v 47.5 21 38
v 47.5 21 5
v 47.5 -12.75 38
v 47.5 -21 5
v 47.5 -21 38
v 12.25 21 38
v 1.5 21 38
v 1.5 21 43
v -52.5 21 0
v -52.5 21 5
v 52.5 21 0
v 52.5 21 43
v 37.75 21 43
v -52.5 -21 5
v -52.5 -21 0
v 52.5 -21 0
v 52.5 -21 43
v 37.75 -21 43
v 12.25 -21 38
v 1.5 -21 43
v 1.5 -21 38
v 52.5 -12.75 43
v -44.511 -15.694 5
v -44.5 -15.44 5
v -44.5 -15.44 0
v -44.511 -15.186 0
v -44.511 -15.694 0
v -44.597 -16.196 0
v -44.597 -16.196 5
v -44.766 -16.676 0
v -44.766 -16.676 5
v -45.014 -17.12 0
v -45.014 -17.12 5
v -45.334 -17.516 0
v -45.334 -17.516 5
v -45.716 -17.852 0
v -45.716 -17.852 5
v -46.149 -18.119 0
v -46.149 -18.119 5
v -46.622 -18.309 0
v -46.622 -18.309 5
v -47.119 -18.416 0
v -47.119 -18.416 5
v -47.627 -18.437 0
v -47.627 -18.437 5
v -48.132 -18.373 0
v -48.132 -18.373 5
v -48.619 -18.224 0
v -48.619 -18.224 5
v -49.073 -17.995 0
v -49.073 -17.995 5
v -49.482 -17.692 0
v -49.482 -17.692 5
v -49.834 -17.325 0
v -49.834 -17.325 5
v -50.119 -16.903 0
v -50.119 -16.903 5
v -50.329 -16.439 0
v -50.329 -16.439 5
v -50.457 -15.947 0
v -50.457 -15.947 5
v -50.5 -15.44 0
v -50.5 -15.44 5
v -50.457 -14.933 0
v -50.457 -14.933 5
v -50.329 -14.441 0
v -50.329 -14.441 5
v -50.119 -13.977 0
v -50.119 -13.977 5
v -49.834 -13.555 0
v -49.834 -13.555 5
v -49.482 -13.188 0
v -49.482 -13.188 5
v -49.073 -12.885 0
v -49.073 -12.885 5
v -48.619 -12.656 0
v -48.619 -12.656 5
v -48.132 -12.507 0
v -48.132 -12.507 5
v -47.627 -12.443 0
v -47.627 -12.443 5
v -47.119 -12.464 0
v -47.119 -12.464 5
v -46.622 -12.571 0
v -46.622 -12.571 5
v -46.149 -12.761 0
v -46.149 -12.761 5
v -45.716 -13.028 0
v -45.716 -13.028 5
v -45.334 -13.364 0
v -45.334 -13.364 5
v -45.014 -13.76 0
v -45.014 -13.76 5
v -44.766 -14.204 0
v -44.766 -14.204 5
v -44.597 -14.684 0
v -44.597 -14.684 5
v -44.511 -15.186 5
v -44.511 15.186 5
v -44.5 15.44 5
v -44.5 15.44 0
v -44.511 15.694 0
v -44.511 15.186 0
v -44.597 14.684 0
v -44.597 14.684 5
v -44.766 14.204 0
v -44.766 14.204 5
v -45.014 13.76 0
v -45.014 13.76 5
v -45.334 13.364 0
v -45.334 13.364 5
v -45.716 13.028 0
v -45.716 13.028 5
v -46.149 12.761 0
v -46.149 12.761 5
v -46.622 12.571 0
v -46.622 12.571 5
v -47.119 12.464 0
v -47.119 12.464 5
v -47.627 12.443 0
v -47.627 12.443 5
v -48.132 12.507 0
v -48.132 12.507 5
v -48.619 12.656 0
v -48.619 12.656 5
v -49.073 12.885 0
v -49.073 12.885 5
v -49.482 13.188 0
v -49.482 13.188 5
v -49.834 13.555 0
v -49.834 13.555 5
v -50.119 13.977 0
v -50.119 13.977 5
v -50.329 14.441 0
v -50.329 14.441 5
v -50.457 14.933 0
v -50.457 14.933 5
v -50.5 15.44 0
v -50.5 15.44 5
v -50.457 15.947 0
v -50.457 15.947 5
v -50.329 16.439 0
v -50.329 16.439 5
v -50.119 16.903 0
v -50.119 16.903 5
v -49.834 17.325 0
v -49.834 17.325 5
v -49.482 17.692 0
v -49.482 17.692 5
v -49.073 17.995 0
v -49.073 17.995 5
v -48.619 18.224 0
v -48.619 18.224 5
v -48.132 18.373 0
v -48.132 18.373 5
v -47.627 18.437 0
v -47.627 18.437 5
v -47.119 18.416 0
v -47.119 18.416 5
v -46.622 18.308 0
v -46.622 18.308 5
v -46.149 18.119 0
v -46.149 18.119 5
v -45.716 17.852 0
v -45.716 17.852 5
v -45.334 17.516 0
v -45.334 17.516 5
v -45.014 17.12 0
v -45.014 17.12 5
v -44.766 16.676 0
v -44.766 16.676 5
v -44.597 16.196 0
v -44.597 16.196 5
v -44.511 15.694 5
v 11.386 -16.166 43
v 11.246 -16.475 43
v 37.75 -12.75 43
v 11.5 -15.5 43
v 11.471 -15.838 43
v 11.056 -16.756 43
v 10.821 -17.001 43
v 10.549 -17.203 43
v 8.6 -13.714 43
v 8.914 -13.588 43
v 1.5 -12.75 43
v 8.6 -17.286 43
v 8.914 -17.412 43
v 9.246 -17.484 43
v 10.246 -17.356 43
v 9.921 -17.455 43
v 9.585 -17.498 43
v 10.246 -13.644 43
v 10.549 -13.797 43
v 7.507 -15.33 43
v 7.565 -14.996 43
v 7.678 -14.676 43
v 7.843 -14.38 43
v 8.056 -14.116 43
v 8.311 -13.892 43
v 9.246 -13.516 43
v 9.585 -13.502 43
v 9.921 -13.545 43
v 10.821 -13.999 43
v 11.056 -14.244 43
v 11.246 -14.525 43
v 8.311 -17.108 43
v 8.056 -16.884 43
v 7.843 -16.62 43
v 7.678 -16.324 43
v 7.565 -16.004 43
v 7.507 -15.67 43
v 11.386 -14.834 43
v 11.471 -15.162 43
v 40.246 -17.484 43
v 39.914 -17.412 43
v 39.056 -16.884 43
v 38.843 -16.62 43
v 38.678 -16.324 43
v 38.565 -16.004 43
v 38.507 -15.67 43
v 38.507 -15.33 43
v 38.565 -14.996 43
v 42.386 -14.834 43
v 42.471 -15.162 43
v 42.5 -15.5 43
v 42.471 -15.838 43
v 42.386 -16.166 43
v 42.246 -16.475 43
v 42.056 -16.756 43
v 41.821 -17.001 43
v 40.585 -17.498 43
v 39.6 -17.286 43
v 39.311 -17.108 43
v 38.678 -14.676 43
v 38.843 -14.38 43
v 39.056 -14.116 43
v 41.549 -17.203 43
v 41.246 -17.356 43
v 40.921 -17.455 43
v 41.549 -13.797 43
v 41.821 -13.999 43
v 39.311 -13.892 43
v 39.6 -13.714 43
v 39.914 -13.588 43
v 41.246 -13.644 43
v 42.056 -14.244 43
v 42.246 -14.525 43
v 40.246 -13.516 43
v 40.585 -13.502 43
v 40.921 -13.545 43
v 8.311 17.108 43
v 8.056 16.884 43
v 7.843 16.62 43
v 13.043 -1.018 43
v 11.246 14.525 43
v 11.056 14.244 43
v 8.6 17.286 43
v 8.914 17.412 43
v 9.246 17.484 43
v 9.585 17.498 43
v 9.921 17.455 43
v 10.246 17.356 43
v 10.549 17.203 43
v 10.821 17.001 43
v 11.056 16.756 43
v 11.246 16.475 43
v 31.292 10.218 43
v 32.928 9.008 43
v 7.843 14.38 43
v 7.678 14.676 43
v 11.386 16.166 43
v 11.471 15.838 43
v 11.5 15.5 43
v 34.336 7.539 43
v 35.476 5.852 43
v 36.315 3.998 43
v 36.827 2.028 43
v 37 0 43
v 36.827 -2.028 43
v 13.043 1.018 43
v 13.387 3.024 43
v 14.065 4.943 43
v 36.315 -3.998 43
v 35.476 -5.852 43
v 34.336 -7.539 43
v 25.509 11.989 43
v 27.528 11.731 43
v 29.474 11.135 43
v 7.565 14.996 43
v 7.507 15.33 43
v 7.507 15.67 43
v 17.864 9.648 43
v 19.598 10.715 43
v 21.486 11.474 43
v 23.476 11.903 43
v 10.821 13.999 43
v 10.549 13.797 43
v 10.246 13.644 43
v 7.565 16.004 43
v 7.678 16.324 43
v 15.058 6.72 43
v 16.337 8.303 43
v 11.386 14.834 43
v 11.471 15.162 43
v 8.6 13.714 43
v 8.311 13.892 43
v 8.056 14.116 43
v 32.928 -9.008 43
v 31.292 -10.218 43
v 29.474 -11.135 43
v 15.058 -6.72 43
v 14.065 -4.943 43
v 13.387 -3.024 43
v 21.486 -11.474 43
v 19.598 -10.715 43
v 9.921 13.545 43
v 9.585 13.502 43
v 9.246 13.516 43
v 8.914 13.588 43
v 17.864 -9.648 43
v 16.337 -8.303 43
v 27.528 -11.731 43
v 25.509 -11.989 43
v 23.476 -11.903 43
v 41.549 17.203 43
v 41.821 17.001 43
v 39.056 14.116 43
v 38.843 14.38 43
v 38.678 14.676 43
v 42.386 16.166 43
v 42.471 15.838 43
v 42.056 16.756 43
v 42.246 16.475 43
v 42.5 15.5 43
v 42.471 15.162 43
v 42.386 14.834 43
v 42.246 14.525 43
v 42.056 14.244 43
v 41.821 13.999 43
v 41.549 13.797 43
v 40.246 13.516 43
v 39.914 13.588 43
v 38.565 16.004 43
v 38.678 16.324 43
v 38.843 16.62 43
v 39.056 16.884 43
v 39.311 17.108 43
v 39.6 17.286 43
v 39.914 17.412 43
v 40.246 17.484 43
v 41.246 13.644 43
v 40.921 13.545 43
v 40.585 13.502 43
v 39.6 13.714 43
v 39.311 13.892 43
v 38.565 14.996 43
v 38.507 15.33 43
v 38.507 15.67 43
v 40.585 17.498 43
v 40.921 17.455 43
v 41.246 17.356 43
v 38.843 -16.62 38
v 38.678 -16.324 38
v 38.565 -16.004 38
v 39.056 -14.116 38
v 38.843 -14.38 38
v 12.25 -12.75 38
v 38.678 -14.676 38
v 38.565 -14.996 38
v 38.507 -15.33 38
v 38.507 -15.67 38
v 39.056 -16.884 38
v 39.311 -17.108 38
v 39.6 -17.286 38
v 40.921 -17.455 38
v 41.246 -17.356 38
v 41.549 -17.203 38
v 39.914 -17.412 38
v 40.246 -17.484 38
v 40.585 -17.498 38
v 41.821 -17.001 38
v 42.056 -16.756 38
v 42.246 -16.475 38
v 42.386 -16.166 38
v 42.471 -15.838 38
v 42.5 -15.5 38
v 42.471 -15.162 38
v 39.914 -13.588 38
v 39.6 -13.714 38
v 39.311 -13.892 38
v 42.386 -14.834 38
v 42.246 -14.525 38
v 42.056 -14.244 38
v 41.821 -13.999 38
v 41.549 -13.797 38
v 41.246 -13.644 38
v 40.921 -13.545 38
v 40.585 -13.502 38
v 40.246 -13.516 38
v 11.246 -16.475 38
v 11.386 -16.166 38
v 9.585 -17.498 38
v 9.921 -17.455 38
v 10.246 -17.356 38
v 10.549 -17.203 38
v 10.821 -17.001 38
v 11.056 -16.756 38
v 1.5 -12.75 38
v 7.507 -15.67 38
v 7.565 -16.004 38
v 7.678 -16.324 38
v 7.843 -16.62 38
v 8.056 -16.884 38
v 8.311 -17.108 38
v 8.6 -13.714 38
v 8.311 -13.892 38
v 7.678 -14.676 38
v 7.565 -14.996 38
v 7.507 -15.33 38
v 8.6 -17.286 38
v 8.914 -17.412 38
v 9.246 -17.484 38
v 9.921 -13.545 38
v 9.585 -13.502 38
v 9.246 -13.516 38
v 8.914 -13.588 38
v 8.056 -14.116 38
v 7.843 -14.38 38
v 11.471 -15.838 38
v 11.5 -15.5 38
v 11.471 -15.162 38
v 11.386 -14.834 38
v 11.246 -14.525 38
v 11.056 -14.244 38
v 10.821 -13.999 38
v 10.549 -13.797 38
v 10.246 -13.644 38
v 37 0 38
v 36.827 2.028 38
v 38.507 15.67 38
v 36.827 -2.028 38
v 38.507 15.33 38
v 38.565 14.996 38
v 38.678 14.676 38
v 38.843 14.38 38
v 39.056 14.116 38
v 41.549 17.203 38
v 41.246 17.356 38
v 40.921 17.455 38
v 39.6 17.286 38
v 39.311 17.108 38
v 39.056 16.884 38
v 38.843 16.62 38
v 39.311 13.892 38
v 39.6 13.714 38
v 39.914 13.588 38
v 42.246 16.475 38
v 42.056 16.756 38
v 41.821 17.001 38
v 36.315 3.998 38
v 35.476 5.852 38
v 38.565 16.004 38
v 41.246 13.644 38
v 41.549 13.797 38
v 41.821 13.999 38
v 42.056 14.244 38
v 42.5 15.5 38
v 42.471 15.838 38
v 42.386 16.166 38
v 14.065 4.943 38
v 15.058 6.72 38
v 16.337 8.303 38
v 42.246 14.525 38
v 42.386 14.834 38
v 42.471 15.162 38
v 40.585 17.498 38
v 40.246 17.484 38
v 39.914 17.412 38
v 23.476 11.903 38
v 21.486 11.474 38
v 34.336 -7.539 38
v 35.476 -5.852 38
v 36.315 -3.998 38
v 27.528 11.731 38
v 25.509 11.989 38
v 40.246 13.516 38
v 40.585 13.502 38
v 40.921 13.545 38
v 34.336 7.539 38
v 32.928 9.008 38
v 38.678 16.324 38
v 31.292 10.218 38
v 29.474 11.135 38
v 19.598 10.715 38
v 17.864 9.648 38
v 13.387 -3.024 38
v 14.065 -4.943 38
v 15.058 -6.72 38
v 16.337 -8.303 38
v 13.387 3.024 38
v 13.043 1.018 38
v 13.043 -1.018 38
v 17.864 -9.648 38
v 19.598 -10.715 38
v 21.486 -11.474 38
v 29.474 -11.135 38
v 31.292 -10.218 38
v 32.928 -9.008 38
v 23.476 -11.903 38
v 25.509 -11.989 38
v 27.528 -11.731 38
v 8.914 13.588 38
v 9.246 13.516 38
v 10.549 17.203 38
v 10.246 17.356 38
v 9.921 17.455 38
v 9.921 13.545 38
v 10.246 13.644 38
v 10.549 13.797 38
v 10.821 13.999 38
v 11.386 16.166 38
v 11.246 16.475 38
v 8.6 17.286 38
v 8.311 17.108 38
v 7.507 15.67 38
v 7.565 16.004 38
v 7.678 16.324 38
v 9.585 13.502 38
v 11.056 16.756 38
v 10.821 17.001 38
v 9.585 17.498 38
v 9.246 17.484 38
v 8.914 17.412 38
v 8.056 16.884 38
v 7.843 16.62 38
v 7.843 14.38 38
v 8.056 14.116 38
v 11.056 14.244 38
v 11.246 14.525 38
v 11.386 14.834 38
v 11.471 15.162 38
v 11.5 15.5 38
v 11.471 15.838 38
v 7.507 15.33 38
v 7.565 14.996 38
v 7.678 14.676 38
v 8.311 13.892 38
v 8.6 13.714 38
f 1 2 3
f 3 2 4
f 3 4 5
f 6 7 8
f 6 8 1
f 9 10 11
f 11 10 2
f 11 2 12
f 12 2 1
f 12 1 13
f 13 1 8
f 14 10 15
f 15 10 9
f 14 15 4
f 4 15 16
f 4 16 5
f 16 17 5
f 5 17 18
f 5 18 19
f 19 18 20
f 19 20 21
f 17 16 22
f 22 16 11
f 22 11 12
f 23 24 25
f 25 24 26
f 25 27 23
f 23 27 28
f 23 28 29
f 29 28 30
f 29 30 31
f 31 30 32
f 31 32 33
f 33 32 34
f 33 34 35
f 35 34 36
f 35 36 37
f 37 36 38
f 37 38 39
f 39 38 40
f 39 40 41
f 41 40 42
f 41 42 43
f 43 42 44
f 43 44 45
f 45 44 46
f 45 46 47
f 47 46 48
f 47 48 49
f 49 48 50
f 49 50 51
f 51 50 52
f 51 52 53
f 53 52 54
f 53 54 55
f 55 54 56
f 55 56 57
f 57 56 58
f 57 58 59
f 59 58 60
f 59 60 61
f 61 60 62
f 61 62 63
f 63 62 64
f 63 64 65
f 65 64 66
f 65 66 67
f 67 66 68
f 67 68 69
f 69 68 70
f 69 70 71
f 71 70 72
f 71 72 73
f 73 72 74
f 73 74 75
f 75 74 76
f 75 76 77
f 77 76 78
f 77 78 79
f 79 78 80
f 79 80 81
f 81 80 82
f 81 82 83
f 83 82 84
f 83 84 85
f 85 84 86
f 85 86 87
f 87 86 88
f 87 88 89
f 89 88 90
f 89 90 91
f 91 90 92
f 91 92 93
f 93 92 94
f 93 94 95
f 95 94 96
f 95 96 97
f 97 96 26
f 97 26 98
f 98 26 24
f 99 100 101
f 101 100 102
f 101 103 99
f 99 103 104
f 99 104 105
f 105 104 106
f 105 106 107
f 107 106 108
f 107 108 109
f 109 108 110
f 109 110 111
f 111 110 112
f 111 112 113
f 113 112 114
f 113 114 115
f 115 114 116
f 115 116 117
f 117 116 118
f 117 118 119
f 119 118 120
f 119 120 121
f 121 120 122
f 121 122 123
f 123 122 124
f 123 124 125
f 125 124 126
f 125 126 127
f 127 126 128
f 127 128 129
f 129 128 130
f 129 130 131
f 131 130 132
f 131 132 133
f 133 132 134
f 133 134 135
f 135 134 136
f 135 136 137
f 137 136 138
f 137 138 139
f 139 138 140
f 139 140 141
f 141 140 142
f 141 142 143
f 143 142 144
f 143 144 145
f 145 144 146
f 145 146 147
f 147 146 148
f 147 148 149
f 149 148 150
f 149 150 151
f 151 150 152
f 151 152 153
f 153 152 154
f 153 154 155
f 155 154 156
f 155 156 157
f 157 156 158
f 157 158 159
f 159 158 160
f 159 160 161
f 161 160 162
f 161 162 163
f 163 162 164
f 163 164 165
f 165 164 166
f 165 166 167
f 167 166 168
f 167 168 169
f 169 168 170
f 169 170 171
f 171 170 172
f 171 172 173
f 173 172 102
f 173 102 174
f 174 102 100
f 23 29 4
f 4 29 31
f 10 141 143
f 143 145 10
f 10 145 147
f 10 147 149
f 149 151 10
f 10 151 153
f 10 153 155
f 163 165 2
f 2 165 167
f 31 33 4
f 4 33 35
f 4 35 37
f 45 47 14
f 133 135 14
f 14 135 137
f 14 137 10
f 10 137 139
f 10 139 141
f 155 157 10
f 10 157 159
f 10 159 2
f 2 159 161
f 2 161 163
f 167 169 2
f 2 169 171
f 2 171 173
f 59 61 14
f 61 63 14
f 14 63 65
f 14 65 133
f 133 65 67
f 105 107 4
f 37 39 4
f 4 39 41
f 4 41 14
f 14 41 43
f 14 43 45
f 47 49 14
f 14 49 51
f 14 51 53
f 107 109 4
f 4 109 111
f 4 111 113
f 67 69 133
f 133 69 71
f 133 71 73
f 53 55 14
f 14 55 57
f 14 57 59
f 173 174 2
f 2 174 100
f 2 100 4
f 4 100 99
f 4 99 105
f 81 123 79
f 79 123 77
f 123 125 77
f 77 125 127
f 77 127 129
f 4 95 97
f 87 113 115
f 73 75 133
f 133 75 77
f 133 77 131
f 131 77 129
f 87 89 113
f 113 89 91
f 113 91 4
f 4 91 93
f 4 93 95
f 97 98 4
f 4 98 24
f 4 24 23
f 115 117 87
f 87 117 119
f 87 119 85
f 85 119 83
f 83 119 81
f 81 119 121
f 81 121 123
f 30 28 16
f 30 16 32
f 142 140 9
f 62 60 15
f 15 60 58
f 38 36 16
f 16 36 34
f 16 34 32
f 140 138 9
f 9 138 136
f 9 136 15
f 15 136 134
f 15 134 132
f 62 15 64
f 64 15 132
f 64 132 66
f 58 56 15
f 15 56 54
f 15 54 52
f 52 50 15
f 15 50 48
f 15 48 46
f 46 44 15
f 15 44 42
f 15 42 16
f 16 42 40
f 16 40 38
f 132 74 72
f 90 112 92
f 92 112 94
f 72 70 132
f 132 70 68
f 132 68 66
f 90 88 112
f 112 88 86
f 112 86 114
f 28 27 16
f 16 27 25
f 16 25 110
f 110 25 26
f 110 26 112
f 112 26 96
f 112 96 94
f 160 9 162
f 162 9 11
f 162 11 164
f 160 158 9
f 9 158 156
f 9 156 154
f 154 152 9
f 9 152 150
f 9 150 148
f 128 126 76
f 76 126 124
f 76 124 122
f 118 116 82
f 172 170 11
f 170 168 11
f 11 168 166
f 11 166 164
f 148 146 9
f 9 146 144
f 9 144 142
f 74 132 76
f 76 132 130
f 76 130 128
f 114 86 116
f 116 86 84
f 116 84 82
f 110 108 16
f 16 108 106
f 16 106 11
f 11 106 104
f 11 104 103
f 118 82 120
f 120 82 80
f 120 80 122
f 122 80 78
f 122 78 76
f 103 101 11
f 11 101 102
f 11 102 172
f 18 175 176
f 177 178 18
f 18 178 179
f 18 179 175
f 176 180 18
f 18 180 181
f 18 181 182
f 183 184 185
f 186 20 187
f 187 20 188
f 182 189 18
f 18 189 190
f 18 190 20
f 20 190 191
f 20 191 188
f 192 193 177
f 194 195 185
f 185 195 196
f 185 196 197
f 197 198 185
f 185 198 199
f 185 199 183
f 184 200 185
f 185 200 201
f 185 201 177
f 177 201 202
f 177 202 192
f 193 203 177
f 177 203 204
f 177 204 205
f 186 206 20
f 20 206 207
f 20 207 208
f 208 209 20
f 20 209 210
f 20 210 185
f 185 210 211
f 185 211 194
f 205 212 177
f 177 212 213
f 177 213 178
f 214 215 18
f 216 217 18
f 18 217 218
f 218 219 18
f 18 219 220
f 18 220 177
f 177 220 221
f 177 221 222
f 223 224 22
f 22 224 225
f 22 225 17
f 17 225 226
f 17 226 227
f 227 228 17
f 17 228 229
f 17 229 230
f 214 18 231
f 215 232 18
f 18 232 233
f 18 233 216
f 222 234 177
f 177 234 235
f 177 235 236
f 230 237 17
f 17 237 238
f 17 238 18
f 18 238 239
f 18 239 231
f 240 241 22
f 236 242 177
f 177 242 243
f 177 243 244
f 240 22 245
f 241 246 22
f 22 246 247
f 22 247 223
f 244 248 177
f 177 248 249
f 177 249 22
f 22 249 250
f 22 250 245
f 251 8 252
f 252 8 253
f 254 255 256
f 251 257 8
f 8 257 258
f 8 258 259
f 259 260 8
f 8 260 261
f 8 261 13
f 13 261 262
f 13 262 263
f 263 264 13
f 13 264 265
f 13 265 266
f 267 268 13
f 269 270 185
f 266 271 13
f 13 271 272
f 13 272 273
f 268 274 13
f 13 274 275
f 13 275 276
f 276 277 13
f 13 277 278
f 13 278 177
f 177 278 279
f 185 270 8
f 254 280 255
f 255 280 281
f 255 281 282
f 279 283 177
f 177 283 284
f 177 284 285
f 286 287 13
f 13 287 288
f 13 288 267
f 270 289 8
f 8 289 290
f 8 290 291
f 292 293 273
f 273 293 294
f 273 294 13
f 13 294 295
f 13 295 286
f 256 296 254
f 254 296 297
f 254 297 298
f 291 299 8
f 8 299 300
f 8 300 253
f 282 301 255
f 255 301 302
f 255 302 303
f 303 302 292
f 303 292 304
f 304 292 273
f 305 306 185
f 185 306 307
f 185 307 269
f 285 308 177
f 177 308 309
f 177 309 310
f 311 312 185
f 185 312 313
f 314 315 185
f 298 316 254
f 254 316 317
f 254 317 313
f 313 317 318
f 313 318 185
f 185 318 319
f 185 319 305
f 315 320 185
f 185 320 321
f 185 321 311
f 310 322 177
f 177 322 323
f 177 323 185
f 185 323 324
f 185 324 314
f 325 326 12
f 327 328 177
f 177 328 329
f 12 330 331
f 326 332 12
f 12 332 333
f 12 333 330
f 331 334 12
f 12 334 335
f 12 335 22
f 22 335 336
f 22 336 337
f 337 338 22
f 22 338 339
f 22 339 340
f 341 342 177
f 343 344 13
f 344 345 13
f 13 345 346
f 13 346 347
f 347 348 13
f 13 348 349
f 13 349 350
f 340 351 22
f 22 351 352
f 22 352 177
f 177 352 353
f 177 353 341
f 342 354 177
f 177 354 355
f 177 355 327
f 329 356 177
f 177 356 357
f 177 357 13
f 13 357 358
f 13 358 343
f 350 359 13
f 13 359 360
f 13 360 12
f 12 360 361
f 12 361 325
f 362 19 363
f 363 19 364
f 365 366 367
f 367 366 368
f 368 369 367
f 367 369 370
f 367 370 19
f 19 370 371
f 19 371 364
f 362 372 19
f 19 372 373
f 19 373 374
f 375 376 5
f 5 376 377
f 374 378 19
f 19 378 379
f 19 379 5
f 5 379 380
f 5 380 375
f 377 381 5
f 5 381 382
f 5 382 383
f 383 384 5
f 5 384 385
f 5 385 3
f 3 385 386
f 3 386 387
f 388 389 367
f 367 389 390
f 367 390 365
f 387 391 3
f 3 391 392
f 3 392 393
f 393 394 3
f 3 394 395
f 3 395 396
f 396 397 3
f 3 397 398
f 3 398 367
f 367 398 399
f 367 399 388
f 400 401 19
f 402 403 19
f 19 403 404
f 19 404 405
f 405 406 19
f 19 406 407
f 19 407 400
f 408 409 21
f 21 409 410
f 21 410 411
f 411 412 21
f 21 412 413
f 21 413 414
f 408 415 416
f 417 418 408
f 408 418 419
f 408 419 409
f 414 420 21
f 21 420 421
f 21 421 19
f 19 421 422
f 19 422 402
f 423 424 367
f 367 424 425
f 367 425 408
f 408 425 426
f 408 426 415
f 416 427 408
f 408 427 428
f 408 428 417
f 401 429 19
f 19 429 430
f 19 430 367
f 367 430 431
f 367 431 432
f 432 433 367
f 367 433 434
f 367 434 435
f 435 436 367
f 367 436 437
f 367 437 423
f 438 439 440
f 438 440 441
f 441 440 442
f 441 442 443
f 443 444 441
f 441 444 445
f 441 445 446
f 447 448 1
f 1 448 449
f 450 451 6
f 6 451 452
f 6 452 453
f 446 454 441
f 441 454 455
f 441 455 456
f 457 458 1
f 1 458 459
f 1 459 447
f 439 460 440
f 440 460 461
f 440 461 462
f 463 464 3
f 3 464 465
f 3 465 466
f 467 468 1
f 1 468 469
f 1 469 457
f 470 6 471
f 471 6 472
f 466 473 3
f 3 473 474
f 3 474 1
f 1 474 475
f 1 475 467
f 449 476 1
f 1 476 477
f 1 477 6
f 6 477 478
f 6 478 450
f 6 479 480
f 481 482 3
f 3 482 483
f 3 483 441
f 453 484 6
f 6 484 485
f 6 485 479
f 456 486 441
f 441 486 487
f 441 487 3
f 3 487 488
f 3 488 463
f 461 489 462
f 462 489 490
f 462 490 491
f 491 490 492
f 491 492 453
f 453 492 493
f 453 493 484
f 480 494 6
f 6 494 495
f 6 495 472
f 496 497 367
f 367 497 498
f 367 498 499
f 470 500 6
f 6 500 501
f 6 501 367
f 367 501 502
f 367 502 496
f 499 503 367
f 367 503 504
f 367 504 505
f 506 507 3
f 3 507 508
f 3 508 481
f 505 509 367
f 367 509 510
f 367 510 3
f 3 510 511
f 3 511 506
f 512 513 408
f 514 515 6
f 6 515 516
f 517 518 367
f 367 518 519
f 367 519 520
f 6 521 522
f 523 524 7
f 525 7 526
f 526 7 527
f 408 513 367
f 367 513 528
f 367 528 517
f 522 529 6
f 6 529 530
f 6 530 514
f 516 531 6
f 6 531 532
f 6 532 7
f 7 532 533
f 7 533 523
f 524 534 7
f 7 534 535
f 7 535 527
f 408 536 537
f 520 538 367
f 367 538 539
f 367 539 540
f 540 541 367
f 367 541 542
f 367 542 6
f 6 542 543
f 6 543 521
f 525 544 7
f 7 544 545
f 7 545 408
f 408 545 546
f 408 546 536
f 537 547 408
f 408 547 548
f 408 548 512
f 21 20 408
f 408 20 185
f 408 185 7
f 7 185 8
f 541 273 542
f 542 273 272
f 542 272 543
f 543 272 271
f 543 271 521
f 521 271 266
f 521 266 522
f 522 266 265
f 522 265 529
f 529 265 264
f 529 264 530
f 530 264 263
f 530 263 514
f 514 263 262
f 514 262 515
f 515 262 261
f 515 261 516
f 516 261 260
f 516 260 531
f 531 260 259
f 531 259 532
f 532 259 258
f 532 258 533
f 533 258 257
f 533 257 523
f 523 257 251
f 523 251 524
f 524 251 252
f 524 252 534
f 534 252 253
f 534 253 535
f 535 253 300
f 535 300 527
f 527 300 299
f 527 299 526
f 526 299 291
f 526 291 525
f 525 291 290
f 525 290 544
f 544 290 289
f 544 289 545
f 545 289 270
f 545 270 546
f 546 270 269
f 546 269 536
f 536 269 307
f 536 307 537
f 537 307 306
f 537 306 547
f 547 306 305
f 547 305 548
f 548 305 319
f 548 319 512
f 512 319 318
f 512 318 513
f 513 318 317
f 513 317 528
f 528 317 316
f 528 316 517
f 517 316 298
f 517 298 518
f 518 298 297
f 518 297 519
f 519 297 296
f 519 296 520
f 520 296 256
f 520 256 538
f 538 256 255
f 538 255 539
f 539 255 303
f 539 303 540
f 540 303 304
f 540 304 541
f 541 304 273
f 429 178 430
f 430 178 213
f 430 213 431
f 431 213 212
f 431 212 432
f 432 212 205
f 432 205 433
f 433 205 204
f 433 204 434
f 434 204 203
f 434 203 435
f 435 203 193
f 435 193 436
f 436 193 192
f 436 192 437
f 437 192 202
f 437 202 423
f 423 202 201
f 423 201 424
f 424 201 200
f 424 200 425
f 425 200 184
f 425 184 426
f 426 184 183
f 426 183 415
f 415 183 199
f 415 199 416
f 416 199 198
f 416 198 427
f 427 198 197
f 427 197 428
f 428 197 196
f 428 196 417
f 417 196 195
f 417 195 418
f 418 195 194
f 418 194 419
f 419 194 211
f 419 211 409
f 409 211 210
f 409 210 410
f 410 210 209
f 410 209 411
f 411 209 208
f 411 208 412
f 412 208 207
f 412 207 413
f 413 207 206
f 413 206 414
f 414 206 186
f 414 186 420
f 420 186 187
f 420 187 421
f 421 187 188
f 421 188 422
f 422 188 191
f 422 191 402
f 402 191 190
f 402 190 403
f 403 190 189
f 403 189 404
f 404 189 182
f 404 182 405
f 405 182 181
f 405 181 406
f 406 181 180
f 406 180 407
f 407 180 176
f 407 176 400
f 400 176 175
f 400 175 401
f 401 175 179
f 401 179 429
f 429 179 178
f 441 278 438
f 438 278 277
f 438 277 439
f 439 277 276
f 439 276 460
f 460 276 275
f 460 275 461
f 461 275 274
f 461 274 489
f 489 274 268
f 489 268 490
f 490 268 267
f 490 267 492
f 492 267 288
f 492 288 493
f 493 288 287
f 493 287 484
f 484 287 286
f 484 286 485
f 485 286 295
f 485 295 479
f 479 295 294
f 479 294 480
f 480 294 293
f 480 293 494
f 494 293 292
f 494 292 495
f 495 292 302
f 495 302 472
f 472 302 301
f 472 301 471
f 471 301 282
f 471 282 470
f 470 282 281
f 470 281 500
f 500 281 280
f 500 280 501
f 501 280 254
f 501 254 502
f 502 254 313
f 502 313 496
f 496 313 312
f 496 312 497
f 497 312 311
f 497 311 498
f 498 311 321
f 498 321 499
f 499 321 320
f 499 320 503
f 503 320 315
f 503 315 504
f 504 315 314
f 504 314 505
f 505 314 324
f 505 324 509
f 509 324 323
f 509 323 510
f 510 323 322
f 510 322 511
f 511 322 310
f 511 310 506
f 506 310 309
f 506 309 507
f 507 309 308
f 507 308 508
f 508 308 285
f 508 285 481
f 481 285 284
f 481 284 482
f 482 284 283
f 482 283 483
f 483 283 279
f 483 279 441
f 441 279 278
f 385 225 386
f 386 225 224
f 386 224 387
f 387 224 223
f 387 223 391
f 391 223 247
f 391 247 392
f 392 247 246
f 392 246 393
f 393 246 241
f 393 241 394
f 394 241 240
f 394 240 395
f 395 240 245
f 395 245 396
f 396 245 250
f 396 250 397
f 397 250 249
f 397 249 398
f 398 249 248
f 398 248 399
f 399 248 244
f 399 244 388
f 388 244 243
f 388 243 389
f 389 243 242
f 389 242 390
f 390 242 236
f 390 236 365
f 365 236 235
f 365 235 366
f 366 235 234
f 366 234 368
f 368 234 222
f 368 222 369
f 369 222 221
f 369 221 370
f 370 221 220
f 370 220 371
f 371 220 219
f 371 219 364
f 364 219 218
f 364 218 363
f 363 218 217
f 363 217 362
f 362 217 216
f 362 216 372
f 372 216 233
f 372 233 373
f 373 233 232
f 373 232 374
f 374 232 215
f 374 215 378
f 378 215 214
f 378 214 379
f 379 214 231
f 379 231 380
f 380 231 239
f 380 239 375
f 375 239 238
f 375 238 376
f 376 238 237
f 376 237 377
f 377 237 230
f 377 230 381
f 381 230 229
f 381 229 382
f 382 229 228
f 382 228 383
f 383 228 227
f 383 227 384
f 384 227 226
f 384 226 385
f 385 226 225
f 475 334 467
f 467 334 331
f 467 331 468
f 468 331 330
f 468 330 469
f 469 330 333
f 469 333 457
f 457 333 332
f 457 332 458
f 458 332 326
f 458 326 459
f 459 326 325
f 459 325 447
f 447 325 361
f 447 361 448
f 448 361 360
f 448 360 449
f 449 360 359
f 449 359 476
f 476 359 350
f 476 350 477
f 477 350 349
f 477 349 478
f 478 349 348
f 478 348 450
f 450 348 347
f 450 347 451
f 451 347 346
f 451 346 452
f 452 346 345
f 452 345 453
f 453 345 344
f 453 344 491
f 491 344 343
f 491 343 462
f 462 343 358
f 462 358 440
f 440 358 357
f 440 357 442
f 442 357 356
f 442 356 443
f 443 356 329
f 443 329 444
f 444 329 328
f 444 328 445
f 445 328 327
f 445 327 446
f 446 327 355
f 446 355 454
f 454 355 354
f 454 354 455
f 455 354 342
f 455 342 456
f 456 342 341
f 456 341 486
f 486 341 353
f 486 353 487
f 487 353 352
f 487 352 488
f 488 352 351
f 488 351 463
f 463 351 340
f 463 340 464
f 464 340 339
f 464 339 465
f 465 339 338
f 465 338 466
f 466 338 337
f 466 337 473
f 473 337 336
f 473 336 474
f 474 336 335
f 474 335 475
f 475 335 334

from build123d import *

# Parameters (mm, degrees)
CROQUIS1_W              = 105
CROQUIS1_H              = 42
CROQUIS1_R              = 3
SALIENTE_EXTRUIR1_DEPTH = 5
CROQUIS5_W              = 5
CROQUIS5_H              = 42
SALIENTE_EXTRUIR2_DEPTH = 38
CROQUIS8_W              = 5
CROQUIS8_H              = 42
SALIENTE_EXTRUIR3_DEPTH = 46
CROQUIS10_R             = 2
CROQUIS10_R_2           = 12
CORTAR_EXTRUIR1_DEPTH   = 5


with BuildPart() as part:
    # Croquis1 → Saliente-Extruir1 (new body)
    with BuildSketch(Plane.XY):
        Rectangle(CROQUIS1_W, CROQUIS1_H)
        with Locations((-47.5, 15.44)):
            Circle(CROQUIS1_R, mode=Mode.SUBTRACT)
        with Locations((-47.5, -15.44)):
            Circle(CROQUIS1_R, mode=Mode.SUBTRACT)
    extrude(amount=SALIENTE_EXTRUIR1_DEPTH)

    # Croquis5 → Saliente-Extruir2 (add)
    with BuildSketch(Plane.XY.offset(5)):
        with Locations((50, 0)):
            Rectangle(CROQUIS5_W, CROQUIS5_H)
    extrude(amount=SALIENTE_EXTRUIR2_DEPTH)

    # Croquis8 → Saliente-Extruir3 (add)
    with BuildSketch(Plane.ZY.offset(-47.5)):
        with Locations((40.5, 0)):
            Rectangle(CROQUIS8_W, CROQUIS8_H)
    extrude(amount=SALIENTE_EXTRUIR3_DEPTH)

    # Croquis10 → Cortar-Extruir1 (cut)
    with BuildSketch(Plane.XY.offset(43)):
        with Locations((9.5, 15.5)):
            Circle(CROQUIS10_R)
        with Locations((9.5, -15.5)):
            Circle(CROQUIS10_R)
        with Locations((40.5, -15.5)):
            Circle(CROQUIS10_R)
        with Locations((40.5, 15.5)):
            Circle(CROQUIS10_R)
        with Locations((25, 0)):
            Circle(CROQUIS10_R_2)
    extrude(amount=-CORTAR_EXTRUIR1_DEPTH, mode=Mode.SUBTRACT)


solid = part.part
